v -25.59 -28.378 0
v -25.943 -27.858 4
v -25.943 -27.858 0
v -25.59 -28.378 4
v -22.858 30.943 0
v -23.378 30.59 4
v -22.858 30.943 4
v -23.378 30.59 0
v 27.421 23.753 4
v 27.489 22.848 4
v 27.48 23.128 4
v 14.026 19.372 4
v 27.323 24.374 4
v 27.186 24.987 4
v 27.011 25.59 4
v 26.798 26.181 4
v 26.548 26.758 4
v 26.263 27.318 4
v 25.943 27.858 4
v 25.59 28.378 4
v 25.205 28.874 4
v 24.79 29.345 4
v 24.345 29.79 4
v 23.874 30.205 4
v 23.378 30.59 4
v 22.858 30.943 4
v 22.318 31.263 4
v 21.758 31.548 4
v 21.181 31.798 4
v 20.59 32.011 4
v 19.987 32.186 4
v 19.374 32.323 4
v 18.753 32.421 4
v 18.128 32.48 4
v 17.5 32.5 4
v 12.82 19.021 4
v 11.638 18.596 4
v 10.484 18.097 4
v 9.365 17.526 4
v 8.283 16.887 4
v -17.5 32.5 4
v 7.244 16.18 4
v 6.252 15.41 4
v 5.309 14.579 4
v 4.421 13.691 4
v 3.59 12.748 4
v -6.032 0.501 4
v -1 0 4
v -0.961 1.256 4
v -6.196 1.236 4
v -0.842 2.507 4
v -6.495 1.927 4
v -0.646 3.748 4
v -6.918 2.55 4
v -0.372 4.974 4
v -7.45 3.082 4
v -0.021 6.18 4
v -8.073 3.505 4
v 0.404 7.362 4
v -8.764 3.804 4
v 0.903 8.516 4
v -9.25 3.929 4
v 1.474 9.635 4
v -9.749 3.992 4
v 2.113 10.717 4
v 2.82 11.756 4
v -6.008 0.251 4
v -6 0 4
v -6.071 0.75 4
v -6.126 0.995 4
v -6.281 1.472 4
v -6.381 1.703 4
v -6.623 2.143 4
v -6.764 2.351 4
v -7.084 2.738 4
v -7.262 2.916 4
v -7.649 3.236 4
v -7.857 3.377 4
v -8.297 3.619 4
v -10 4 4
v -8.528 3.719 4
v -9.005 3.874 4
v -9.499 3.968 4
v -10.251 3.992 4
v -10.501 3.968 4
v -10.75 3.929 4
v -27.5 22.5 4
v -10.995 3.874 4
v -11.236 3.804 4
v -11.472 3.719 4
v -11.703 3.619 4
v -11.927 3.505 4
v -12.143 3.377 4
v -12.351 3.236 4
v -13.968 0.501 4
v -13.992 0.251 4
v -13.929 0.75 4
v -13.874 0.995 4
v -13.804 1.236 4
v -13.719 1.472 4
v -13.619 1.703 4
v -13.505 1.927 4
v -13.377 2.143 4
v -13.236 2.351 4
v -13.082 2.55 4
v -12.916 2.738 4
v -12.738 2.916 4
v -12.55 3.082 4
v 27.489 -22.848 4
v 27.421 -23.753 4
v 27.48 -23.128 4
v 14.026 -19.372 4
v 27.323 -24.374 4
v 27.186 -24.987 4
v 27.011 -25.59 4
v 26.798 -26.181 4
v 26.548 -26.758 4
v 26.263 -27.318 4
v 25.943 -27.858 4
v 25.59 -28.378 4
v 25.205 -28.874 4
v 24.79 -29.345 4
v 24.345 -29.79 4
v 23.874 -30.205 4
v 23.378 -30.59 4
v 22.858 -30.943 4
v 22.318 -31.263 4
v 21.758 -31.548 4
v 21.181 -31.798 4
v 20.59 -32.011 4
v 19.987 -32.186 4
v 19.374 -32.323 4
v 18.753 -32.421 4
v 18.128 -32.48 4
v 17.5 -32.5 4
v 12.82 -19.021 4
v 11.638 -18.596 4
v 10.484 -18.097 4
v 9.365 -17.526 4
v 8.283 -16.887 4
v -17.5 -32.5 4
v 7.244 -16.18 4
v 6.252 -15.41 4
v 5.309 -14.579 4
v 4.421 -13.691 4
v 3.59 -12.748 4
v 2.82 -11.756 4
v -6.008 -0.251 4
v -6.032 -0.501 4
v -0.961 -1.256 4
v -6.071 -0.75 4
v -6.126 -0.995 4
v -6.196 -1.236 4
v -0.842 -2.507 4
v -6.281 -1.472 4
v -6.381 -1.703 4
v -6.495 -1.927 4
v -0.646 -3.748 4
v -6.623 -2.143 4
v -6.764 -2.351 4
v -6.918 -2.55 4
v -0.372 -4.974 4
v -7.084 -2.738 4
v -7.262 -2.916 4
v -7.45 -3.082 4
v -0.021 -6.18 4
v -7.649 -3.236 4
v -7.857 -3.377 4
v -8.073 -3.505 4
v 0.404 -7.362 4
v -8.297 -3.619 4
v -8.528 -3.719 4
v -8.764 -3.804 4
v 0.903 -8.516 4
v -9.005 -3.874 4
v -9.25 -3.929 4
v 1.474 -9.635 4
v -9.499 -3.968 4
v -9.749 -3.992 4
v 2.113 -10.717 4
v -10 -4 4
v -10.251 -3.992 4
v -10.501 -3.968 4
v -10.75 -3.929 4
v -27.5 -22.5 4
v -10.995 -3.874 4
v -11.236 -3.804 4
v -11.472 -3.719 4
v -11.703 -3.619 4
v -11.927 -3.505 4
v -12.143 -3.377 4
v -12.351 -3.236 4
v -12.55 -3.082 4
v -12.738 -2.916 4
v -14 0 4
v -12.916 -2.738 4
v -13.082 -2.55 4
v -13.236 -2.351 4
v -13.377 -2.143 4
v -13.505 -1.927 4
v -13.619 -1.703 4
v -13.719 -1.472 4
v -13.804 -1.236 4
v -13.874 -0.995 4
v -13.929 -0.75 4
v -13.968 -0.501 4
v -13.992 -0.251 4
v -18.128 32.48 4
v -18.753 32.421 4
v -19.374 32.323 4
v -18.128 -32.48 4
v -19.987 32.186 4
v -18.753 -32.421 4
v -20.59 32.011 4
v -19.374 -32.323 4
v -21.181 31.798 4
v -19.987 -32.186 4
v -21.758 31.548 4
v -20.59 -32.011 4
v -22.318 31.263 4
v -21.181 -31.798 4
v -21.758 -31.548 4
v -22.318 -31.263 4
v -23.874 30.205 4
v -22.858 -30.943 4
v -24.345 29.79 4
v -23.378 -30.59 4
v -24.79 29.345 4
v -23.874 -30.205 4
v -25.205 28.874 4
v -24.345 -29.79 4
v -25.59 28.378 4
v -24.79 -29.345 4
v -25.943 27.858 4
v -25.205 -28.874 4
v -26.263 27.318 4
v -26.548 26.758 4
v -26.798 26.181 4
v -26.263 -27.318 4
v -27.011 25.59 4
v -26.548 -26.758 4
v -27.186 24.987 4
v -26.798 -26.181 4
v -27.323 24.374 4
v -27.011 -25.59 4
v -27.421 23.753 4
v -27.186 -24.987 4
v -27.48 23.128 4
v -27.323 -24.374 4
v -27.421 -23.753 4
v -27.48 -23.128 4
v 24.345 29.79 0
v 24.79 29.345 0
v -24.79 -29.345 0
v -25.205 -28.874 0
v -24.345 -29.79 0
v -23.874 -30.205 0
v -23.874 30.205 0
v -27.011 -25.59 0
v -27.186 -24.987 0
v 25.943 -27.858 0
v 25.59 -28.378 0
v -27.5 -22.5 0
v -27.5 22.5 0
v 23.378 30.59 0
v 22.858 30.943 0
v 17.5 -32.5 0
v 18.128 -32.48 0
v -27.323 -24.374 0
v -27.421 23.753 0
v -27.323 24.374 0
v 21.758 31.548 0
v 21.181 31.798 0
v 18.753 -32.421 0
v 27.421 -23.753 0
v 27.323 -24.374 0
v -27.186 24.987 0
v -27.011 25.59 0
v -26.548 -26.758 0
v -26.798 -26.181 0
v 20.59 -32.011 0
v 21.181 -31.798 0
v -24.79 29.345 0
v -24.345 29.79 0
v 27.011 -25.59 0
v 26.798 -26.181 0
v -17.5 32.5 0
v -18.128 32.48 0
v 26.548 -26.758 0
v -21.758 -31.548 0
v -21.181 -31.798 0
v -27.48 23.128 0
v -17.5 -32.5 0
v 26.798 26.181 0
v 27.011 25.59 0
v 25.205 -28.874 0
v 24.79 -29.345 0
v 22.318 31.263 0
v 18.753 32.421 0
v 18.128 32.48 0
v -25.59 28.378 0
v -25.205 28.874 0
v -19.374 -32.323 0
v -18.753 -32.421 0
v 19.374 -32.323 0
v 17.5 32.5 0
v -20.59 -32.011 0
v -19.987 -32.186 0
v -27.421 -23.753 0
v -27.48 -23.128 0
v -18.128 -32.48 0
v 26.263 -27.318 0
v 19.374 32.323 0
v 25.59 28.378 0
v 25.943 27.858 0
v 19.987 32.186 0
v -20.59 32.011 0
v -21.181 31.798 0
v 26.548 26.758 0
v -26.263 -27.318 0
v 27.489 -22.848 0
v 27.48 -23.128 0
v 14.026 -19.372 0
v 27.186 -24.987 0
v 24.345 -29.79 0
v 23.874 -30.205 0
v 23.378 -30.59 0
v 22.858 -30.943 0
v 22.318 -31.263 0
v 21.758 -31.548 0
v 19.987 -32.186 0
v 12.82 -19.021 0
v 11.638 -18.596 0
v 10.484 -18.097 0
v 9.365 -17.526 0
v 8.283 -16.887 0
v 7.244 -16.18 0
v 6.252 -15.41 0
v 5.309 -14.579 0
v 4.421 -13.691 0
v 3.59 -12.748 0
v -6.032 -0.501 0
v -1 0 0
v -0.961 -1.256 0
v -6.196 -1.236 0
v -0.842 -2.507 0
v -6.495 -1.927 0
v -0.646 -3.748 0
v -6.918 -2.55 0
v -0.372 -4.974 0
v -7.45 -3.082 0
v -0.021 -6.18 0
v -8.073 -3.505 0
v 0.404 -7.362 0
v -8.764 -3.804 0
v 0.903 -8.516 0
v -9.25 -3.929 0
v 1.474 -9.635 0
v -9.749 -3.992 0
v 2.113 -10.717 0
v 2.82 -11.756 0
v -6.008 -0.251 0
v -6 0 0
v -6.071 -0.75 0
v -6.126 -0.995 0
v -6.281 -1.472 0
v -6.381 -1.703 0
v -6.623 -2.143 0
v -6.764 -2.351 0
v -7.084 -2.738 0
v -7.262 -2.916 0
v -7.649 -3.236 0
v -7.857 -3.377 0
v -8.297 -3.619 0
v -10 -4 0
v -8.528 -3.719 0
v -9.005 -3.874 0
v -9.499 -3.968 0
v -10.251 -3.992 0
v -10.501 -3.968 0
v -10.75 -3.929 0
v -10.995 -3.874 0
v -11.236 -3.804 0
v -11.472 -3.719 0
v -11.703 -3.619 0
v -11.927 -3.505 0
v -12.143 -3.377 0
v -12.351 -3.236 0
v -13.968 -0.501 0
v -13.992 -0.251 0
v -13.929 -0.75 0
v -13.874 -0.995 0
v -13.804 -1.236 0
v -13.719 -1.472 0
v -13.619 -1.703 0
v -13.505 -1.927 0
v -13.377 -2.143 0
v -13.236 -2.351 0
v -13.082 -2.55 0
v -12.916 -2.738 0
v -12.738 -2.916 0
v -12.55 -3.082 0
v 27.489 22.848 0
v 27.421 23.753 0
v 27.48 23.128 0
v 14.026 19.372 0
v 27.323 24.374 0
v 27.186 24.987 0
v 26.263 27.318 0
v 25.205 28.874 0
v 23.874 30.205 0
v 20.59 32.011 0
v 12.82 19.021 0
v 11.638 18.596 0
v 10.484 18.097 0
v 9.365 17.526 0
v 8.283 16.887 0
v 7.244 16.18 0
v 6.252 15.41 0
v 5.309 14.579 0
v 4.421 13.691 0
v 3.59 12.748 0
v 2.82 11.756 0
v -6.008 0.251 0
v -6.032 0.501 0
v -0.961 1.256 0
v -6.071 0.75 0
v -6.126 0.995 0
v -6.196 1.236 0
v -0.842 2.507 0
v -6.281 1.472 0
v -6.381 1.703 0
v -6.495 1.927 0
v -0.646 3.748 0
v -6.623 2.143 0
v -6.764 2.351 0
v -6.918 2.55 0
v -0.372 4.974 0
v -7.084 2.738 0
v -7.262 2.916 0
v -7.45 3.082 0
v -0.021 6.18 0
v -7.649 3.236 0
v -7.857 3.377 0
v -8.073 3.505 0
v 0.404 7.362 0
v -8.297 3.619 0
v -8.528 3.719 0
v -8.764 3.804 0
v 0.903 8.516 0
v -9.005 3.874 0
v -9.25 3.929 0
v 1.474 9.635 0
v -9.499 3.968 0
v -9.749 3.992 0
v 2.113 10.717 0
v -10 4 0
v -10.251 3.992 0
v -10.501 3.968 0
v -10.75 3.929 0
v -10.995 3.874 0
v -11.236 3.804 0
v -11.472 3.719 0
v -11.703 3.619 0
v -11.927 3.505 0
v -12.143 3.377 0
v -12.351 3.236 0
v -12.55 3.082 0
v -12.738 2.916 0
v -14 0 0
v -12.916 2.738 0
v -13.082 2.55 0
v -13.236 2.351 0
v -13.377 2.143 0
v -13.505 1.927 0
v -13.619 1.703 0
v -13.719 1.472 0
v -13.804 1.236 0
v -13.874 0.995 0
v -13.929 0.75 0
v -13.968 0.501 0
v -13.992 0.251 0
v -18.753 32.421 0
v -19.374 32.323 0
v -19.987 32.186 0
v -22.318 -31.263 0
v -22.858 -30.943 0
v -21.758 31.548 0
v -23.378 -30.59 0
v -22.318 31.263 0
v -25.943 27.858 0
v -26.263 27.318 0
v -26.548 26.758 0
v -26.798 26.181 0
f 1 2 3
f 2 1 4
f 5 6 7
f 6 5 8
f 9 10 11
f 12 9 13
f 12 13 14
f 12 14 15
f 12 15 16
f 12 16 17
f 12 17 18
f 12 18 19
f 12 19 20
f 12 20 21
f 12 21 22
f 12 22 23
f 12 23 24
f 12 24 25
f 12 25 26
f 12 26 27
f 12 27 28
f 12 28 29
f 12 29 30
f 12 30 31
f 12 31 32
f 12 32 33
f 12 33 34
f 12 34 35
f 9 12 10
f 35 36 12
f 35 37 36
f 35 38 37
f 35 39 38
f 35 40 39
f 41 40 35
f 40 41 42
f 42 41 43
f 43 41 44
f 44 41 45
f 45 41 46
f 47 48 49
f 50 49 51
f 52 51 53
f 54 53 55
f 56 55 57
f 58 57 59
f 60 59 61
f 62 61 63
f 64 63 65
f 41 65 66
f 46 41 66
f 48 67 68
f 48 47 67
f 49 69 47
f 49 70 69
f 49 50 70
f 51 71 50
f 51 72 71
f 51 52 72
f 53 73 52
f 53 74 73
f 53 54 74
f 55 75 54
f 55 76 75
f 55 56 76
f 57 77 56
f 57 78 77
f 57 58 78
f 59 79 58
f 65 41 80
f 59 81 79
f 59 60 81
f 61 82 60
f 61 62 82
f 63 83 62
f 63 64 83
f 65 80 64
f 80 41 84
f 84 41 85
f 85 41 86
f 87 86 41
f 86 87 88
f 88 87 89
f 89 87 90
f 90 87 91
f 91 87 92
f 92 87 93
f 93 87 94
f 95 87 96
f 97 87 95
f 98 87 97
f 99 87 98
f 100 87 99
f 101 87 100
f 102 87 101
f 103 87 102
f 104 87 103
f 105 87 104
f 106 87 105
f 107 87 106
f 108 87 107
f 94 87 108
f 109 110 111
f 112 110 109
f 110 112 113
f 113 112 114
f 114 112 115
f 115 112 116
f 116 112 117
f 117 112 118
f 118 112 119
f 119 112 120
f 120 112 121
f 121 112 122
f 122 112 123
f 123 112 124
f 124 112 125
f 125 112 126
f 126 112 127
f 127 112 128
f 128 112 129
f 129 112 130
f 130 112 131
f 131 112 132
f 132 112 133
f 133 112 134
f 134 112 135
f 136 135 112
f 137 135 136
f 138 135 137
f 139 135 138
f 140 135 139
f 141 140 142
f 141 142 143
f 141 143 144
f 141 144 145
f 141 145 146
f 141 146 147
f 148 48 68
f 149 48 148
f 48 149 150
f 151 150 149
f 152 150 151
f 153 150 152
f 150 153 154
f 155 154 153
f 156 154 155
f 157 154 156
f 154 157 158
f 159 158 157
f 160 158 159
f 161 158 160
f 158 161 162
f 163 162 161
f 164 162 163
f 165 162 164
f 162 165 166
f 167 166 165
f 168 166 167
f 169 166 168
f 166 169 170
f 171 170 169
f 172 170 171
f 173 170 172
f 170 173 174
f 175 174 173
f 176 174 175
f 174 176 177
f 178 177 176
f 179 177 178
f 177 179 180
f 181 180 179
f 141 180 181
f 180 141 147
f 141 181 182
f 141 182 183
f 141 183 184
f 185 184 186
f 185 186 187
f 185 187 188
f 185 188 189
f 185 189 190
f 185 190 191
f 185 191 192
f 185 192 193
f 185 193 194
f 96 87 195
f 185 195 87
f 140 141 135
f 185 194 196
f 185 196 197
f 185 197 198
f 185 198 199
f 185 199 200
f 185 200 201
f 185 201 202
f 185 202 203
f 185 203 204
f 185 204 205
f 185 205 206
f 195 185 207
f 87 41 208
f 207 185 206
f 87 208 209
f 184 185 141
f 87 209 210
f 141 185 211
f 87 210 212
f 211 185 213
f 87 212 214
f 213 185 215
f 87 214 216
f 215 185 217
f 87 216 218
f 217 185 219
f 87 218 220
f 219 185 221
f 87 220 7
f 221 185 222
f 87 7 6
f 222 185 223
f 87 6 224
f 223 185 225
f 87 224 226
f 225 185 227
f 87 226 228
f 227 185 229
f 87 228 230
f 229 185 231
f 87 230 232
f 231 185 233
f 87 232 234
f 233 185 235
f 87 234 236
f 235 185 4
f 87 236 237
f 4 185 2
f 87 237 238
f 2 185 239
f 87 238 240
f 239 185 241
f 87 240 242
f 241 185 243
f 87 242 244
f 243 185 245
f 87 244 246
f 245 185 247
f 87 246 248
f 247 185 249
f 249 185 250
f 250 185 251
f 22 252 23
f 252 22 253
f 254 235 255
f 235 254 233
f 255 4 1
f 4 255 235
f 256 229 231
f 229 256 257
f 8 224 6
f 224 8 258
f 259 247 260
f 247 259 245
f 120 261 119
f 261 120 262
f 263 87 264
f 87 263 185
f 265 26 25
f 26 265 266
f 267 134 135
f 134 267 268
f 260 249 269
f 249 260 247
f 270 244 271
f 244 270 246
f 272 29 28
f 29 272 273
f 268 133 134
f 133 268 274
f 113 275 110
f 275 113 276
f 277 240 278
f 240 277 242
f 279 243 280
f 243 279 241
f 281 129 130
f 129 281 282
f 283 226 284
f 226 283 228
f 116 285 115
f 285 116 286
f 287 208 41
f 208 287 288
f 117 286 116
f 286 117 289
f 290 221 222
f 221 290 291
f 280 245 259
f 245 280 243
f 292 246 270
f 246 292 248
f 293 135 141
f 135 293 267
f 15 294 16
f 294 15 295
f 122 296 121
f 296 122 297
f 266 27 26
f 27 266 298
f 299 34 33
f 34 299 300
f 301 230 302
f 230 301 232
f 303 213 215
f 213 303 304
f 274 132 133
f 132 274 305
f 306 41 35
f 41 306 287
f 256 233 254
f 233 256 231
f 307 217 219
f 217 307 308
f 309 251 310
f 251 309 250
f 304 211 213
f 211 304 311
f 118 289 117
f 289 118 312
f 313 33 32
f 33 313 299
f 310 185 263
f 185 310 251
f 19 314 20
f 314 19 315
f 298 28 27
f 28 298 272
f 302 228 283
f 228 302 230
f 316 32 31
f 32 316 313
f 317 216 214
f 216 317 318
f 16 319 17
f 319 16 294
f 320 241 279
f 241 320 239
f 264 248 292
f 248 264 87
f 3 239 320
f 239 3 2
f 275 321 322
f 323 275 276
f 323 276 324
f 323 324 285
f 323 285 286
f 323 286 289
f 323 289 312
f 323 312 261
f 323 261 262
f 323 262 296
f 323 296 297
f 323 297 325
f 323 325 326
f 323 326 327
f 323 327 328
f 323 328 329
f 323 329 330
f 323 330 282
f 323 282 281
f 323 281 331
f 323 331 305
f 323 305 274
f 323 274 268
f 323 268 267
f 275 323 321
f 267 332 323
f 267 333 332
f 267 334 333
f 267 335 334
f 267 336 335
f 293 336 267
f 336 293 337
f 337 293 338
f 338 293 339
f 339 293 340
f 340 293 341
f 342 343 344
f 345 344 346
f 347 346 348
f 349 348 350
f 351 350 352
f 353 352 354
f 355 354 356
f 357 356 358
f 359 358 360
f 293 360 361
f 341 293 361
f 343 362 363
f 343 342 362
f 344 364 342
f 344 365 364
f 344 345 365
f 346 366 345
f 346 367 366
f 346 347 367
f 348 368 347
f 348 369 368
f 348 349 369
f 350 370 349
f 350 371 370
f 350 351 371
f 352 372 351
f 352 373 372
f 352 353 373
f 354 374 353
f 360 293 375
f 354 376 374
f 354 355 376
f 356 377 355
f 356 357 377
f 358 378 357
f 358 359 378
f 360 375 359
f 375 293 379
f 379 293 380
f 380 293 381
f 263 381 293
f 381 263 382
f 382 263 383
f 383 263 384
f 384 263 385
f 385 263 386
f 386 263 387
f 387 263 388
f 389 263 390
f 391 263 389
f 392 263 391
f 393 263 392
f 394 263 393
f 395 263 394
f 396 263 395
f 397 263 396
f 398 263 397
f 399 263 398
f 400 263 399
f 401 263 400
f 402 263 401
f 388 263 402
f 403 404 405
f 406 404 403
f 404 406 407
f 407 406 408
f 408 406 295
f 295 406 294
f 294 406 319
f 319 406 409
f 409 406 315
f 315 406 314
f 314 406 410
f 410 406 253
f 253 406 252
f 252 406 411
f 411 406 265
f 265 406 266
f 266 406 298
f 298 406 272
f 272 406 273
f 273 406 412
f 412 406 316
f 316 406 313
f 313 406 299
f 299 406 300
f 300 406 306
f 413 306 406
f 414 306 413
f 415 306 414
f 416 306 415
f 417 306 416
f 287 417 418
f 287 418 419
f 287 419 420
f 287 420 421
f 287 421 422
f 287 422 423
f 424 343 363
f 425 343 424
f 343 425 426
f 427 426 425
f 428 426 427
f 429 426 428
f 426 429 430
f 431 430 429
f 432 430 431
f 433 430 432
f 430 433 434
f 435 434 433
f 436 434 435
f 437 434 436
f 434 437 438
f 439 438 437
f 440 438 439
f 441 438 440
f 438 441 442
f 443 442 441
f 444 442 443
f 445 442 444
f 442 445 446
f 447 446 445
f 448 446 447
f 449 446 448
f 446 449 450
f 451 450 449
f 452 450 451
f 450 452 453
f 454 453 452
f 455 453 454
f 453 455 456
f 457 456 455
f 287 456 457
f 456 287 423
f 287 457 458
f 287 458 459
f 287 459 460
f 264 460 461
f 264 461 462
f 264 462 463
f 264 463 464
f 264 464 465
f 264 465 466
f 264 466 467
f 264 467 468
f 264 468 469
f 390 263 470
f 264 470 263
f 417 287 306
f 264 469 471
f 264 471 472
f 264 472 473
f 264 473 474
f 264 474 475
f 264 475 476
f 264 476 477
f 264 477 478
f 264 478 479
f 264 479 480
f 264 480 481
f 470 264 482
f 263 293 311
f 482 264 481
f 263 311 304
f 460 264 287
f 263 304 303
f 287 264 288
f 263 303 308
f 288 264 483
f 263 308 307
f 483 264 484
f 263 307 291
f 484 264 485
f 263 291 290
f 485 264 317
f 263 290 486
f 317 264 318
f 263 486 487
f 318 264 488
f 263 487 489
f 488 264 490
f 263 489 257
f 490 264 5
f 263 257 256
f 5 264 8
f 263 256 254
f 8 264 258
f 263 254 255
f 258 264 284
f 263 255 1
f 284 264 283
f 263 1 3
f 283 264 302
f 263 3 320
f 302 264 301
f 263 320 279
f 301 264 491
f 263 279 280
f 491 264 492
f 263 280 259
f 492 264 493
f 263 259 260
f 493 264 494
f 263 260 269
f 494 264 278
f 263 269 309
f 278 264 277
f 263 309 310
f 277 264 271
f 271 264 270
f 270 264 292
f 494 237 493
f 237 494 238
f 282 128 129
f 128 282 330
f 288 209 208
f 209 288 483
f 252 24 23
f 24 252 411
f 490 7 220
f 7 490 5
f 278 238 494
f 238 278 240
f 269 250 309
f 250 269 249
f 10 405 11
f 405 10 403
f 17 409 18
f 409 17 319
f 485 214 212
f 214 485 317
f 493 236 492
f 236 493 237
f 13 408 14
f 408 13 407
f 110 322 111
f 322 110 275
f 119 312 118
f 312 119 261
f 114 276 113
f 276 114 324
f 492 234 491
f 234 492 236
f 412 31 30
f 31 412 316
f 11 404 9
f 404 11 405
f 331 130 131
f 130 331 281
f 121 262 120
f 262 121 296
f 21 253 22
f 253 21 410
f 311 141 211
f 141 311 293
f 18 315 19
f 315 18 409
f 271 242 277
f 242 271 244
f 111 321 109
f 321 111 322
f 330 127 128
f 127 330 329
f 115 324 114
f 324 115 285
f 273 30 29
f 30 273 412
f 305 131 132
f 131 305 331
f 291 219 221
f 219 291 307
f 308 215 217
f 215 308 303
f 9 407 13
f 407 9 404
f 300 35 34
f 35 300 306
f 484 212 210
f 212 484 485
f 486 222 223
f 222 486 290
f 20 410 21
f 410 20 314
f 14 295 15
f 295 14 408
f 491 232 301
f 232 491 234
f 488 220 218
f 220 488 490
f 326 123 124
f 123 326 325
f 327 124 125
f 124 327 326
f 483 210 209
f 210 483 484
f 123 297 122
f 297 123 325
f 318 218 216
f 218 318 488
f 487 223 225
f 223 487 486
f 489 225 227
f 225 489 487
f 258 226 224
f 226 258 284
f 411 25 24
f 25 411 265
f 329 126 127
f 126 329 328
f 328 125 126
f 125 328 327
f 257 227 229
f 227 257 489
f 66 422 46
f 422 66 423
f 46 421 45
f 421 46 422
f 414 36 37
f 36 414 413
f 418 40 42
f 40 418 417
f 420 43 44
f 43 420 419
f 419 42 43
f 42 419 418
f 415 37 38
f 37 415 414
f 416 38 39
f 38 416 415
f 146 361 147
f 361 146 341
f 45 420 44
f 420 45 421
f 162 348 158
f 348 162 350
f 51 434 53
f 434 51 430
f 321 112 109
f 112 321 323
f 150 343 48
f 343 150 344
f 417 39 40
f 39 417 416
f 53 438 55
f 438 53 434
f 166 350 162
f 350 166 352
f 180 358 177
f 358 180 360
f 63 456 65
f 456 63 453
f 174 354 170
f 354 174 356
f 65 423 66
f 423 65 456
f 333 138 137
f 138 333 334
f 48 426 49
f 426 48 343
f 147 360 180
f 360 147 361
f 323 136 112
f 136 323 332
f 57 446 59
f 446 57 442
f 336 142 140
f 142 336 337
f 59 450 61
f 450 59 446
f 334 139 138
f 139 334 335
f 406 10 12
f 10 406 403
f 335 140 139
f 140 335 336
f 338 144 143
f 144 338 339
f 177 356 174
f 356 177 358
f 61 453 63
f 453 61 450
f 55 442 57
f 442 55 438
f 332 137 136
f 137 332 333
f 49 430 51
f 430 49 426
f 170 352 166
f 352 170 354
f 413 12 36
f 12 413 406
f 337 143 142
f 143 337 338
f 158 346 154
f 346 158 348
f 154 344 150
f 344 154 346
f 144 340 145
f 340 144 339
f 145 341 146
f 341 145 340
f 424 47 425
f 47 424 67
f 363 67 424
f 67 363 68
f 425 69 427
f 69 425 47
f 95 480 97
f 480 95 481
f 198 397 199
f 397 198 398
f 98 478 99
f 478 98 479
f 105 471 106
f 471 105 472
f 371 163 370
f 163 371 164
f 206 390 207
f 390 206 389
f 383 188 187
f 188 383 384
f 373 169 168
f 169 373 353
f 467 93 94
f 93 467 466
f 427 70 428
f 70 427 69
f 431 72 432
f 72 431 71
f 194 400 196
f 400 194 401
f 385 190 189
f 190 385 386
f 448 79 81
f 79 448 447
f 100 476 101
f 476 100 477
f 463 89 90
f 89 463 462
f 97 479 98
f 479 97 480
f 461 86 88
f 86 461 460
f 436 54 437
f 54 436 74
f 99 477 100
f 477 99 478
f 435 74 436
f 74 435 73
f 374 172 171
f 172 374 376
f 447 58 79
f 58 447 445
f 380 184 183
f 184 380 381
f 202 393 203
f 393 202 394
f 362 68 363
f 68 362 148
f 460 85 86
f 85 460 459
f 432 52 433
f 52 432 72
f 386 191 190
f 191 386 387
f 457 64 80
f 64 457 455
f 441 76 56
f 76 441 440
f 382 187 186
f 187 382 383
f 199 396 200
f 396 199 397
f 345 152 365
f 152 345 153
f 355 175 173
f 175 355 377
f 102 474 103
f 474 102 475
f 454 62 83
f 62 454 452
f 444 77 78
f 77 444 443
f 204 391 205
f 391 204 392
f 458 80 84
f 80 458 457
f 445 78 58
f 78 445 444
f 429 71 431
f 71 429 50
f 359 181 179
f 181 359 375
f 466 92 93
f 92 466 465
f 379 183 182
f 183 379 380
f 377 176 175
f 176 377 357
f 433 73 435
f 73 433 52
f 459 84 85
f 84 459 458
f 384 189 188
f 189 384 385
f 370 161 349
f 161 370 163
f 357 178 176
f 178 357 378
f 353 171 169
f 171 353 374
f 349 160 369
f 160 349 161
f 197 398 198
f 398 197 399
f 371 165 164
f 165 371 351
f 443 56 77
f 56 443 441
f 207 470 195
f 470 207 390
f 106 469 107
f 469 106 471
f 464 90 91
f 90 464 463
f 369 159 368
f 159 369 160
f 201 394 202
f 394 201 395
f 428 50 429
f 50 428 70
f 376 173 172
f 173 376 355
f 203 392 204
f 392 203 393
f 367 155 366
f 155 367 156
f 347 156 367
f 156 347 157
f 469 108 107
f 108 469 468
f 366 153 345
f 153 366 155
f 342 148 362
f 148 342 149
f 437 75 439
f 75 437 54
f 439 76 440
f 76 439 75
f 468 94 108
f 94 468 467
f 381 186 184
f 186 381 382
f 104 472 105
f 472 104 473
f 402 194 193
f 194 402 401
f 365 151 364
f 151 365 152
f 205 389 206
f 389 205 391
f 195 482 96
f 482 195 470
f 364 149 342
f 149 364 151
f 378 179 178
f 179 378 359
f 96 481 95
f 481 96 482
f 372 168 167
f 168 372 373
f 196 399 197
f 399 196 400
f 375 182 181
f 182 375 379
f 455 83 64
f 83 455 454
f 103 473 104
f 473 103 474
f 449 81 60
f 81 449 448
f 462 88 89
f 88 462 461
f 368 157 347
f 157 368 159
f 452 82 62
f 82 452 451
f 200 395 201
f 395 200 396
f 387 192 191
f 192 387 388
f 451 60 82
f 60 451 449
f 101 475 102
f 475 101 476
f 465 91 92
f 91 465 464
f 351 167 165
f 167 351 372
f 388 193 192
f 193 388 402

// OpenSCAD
// Sink bracket
h = 4;
$fn=100;
difference() {
    hull() {
        standoffs(h, 10, 35, 45);
    }
    
    translate([19, 0]) hull() {
        cylinder(h, r=20);
        translate([40, 0]) cylinder(h, r=30);
    }
    translate([-10, 0]) cylinder(h, r=4);
}

module standoffs(h, r, x, y){
    translate([x/2, y/2]) cylinder(h, r, r);
    translate([-x/2, y/2]) cylinder(h, r, r);
    translate([x/2, -y/2]) cylinder(h, r, r);
    translate([-x/2, -y/2]) cylinder(h, r, r);
}
